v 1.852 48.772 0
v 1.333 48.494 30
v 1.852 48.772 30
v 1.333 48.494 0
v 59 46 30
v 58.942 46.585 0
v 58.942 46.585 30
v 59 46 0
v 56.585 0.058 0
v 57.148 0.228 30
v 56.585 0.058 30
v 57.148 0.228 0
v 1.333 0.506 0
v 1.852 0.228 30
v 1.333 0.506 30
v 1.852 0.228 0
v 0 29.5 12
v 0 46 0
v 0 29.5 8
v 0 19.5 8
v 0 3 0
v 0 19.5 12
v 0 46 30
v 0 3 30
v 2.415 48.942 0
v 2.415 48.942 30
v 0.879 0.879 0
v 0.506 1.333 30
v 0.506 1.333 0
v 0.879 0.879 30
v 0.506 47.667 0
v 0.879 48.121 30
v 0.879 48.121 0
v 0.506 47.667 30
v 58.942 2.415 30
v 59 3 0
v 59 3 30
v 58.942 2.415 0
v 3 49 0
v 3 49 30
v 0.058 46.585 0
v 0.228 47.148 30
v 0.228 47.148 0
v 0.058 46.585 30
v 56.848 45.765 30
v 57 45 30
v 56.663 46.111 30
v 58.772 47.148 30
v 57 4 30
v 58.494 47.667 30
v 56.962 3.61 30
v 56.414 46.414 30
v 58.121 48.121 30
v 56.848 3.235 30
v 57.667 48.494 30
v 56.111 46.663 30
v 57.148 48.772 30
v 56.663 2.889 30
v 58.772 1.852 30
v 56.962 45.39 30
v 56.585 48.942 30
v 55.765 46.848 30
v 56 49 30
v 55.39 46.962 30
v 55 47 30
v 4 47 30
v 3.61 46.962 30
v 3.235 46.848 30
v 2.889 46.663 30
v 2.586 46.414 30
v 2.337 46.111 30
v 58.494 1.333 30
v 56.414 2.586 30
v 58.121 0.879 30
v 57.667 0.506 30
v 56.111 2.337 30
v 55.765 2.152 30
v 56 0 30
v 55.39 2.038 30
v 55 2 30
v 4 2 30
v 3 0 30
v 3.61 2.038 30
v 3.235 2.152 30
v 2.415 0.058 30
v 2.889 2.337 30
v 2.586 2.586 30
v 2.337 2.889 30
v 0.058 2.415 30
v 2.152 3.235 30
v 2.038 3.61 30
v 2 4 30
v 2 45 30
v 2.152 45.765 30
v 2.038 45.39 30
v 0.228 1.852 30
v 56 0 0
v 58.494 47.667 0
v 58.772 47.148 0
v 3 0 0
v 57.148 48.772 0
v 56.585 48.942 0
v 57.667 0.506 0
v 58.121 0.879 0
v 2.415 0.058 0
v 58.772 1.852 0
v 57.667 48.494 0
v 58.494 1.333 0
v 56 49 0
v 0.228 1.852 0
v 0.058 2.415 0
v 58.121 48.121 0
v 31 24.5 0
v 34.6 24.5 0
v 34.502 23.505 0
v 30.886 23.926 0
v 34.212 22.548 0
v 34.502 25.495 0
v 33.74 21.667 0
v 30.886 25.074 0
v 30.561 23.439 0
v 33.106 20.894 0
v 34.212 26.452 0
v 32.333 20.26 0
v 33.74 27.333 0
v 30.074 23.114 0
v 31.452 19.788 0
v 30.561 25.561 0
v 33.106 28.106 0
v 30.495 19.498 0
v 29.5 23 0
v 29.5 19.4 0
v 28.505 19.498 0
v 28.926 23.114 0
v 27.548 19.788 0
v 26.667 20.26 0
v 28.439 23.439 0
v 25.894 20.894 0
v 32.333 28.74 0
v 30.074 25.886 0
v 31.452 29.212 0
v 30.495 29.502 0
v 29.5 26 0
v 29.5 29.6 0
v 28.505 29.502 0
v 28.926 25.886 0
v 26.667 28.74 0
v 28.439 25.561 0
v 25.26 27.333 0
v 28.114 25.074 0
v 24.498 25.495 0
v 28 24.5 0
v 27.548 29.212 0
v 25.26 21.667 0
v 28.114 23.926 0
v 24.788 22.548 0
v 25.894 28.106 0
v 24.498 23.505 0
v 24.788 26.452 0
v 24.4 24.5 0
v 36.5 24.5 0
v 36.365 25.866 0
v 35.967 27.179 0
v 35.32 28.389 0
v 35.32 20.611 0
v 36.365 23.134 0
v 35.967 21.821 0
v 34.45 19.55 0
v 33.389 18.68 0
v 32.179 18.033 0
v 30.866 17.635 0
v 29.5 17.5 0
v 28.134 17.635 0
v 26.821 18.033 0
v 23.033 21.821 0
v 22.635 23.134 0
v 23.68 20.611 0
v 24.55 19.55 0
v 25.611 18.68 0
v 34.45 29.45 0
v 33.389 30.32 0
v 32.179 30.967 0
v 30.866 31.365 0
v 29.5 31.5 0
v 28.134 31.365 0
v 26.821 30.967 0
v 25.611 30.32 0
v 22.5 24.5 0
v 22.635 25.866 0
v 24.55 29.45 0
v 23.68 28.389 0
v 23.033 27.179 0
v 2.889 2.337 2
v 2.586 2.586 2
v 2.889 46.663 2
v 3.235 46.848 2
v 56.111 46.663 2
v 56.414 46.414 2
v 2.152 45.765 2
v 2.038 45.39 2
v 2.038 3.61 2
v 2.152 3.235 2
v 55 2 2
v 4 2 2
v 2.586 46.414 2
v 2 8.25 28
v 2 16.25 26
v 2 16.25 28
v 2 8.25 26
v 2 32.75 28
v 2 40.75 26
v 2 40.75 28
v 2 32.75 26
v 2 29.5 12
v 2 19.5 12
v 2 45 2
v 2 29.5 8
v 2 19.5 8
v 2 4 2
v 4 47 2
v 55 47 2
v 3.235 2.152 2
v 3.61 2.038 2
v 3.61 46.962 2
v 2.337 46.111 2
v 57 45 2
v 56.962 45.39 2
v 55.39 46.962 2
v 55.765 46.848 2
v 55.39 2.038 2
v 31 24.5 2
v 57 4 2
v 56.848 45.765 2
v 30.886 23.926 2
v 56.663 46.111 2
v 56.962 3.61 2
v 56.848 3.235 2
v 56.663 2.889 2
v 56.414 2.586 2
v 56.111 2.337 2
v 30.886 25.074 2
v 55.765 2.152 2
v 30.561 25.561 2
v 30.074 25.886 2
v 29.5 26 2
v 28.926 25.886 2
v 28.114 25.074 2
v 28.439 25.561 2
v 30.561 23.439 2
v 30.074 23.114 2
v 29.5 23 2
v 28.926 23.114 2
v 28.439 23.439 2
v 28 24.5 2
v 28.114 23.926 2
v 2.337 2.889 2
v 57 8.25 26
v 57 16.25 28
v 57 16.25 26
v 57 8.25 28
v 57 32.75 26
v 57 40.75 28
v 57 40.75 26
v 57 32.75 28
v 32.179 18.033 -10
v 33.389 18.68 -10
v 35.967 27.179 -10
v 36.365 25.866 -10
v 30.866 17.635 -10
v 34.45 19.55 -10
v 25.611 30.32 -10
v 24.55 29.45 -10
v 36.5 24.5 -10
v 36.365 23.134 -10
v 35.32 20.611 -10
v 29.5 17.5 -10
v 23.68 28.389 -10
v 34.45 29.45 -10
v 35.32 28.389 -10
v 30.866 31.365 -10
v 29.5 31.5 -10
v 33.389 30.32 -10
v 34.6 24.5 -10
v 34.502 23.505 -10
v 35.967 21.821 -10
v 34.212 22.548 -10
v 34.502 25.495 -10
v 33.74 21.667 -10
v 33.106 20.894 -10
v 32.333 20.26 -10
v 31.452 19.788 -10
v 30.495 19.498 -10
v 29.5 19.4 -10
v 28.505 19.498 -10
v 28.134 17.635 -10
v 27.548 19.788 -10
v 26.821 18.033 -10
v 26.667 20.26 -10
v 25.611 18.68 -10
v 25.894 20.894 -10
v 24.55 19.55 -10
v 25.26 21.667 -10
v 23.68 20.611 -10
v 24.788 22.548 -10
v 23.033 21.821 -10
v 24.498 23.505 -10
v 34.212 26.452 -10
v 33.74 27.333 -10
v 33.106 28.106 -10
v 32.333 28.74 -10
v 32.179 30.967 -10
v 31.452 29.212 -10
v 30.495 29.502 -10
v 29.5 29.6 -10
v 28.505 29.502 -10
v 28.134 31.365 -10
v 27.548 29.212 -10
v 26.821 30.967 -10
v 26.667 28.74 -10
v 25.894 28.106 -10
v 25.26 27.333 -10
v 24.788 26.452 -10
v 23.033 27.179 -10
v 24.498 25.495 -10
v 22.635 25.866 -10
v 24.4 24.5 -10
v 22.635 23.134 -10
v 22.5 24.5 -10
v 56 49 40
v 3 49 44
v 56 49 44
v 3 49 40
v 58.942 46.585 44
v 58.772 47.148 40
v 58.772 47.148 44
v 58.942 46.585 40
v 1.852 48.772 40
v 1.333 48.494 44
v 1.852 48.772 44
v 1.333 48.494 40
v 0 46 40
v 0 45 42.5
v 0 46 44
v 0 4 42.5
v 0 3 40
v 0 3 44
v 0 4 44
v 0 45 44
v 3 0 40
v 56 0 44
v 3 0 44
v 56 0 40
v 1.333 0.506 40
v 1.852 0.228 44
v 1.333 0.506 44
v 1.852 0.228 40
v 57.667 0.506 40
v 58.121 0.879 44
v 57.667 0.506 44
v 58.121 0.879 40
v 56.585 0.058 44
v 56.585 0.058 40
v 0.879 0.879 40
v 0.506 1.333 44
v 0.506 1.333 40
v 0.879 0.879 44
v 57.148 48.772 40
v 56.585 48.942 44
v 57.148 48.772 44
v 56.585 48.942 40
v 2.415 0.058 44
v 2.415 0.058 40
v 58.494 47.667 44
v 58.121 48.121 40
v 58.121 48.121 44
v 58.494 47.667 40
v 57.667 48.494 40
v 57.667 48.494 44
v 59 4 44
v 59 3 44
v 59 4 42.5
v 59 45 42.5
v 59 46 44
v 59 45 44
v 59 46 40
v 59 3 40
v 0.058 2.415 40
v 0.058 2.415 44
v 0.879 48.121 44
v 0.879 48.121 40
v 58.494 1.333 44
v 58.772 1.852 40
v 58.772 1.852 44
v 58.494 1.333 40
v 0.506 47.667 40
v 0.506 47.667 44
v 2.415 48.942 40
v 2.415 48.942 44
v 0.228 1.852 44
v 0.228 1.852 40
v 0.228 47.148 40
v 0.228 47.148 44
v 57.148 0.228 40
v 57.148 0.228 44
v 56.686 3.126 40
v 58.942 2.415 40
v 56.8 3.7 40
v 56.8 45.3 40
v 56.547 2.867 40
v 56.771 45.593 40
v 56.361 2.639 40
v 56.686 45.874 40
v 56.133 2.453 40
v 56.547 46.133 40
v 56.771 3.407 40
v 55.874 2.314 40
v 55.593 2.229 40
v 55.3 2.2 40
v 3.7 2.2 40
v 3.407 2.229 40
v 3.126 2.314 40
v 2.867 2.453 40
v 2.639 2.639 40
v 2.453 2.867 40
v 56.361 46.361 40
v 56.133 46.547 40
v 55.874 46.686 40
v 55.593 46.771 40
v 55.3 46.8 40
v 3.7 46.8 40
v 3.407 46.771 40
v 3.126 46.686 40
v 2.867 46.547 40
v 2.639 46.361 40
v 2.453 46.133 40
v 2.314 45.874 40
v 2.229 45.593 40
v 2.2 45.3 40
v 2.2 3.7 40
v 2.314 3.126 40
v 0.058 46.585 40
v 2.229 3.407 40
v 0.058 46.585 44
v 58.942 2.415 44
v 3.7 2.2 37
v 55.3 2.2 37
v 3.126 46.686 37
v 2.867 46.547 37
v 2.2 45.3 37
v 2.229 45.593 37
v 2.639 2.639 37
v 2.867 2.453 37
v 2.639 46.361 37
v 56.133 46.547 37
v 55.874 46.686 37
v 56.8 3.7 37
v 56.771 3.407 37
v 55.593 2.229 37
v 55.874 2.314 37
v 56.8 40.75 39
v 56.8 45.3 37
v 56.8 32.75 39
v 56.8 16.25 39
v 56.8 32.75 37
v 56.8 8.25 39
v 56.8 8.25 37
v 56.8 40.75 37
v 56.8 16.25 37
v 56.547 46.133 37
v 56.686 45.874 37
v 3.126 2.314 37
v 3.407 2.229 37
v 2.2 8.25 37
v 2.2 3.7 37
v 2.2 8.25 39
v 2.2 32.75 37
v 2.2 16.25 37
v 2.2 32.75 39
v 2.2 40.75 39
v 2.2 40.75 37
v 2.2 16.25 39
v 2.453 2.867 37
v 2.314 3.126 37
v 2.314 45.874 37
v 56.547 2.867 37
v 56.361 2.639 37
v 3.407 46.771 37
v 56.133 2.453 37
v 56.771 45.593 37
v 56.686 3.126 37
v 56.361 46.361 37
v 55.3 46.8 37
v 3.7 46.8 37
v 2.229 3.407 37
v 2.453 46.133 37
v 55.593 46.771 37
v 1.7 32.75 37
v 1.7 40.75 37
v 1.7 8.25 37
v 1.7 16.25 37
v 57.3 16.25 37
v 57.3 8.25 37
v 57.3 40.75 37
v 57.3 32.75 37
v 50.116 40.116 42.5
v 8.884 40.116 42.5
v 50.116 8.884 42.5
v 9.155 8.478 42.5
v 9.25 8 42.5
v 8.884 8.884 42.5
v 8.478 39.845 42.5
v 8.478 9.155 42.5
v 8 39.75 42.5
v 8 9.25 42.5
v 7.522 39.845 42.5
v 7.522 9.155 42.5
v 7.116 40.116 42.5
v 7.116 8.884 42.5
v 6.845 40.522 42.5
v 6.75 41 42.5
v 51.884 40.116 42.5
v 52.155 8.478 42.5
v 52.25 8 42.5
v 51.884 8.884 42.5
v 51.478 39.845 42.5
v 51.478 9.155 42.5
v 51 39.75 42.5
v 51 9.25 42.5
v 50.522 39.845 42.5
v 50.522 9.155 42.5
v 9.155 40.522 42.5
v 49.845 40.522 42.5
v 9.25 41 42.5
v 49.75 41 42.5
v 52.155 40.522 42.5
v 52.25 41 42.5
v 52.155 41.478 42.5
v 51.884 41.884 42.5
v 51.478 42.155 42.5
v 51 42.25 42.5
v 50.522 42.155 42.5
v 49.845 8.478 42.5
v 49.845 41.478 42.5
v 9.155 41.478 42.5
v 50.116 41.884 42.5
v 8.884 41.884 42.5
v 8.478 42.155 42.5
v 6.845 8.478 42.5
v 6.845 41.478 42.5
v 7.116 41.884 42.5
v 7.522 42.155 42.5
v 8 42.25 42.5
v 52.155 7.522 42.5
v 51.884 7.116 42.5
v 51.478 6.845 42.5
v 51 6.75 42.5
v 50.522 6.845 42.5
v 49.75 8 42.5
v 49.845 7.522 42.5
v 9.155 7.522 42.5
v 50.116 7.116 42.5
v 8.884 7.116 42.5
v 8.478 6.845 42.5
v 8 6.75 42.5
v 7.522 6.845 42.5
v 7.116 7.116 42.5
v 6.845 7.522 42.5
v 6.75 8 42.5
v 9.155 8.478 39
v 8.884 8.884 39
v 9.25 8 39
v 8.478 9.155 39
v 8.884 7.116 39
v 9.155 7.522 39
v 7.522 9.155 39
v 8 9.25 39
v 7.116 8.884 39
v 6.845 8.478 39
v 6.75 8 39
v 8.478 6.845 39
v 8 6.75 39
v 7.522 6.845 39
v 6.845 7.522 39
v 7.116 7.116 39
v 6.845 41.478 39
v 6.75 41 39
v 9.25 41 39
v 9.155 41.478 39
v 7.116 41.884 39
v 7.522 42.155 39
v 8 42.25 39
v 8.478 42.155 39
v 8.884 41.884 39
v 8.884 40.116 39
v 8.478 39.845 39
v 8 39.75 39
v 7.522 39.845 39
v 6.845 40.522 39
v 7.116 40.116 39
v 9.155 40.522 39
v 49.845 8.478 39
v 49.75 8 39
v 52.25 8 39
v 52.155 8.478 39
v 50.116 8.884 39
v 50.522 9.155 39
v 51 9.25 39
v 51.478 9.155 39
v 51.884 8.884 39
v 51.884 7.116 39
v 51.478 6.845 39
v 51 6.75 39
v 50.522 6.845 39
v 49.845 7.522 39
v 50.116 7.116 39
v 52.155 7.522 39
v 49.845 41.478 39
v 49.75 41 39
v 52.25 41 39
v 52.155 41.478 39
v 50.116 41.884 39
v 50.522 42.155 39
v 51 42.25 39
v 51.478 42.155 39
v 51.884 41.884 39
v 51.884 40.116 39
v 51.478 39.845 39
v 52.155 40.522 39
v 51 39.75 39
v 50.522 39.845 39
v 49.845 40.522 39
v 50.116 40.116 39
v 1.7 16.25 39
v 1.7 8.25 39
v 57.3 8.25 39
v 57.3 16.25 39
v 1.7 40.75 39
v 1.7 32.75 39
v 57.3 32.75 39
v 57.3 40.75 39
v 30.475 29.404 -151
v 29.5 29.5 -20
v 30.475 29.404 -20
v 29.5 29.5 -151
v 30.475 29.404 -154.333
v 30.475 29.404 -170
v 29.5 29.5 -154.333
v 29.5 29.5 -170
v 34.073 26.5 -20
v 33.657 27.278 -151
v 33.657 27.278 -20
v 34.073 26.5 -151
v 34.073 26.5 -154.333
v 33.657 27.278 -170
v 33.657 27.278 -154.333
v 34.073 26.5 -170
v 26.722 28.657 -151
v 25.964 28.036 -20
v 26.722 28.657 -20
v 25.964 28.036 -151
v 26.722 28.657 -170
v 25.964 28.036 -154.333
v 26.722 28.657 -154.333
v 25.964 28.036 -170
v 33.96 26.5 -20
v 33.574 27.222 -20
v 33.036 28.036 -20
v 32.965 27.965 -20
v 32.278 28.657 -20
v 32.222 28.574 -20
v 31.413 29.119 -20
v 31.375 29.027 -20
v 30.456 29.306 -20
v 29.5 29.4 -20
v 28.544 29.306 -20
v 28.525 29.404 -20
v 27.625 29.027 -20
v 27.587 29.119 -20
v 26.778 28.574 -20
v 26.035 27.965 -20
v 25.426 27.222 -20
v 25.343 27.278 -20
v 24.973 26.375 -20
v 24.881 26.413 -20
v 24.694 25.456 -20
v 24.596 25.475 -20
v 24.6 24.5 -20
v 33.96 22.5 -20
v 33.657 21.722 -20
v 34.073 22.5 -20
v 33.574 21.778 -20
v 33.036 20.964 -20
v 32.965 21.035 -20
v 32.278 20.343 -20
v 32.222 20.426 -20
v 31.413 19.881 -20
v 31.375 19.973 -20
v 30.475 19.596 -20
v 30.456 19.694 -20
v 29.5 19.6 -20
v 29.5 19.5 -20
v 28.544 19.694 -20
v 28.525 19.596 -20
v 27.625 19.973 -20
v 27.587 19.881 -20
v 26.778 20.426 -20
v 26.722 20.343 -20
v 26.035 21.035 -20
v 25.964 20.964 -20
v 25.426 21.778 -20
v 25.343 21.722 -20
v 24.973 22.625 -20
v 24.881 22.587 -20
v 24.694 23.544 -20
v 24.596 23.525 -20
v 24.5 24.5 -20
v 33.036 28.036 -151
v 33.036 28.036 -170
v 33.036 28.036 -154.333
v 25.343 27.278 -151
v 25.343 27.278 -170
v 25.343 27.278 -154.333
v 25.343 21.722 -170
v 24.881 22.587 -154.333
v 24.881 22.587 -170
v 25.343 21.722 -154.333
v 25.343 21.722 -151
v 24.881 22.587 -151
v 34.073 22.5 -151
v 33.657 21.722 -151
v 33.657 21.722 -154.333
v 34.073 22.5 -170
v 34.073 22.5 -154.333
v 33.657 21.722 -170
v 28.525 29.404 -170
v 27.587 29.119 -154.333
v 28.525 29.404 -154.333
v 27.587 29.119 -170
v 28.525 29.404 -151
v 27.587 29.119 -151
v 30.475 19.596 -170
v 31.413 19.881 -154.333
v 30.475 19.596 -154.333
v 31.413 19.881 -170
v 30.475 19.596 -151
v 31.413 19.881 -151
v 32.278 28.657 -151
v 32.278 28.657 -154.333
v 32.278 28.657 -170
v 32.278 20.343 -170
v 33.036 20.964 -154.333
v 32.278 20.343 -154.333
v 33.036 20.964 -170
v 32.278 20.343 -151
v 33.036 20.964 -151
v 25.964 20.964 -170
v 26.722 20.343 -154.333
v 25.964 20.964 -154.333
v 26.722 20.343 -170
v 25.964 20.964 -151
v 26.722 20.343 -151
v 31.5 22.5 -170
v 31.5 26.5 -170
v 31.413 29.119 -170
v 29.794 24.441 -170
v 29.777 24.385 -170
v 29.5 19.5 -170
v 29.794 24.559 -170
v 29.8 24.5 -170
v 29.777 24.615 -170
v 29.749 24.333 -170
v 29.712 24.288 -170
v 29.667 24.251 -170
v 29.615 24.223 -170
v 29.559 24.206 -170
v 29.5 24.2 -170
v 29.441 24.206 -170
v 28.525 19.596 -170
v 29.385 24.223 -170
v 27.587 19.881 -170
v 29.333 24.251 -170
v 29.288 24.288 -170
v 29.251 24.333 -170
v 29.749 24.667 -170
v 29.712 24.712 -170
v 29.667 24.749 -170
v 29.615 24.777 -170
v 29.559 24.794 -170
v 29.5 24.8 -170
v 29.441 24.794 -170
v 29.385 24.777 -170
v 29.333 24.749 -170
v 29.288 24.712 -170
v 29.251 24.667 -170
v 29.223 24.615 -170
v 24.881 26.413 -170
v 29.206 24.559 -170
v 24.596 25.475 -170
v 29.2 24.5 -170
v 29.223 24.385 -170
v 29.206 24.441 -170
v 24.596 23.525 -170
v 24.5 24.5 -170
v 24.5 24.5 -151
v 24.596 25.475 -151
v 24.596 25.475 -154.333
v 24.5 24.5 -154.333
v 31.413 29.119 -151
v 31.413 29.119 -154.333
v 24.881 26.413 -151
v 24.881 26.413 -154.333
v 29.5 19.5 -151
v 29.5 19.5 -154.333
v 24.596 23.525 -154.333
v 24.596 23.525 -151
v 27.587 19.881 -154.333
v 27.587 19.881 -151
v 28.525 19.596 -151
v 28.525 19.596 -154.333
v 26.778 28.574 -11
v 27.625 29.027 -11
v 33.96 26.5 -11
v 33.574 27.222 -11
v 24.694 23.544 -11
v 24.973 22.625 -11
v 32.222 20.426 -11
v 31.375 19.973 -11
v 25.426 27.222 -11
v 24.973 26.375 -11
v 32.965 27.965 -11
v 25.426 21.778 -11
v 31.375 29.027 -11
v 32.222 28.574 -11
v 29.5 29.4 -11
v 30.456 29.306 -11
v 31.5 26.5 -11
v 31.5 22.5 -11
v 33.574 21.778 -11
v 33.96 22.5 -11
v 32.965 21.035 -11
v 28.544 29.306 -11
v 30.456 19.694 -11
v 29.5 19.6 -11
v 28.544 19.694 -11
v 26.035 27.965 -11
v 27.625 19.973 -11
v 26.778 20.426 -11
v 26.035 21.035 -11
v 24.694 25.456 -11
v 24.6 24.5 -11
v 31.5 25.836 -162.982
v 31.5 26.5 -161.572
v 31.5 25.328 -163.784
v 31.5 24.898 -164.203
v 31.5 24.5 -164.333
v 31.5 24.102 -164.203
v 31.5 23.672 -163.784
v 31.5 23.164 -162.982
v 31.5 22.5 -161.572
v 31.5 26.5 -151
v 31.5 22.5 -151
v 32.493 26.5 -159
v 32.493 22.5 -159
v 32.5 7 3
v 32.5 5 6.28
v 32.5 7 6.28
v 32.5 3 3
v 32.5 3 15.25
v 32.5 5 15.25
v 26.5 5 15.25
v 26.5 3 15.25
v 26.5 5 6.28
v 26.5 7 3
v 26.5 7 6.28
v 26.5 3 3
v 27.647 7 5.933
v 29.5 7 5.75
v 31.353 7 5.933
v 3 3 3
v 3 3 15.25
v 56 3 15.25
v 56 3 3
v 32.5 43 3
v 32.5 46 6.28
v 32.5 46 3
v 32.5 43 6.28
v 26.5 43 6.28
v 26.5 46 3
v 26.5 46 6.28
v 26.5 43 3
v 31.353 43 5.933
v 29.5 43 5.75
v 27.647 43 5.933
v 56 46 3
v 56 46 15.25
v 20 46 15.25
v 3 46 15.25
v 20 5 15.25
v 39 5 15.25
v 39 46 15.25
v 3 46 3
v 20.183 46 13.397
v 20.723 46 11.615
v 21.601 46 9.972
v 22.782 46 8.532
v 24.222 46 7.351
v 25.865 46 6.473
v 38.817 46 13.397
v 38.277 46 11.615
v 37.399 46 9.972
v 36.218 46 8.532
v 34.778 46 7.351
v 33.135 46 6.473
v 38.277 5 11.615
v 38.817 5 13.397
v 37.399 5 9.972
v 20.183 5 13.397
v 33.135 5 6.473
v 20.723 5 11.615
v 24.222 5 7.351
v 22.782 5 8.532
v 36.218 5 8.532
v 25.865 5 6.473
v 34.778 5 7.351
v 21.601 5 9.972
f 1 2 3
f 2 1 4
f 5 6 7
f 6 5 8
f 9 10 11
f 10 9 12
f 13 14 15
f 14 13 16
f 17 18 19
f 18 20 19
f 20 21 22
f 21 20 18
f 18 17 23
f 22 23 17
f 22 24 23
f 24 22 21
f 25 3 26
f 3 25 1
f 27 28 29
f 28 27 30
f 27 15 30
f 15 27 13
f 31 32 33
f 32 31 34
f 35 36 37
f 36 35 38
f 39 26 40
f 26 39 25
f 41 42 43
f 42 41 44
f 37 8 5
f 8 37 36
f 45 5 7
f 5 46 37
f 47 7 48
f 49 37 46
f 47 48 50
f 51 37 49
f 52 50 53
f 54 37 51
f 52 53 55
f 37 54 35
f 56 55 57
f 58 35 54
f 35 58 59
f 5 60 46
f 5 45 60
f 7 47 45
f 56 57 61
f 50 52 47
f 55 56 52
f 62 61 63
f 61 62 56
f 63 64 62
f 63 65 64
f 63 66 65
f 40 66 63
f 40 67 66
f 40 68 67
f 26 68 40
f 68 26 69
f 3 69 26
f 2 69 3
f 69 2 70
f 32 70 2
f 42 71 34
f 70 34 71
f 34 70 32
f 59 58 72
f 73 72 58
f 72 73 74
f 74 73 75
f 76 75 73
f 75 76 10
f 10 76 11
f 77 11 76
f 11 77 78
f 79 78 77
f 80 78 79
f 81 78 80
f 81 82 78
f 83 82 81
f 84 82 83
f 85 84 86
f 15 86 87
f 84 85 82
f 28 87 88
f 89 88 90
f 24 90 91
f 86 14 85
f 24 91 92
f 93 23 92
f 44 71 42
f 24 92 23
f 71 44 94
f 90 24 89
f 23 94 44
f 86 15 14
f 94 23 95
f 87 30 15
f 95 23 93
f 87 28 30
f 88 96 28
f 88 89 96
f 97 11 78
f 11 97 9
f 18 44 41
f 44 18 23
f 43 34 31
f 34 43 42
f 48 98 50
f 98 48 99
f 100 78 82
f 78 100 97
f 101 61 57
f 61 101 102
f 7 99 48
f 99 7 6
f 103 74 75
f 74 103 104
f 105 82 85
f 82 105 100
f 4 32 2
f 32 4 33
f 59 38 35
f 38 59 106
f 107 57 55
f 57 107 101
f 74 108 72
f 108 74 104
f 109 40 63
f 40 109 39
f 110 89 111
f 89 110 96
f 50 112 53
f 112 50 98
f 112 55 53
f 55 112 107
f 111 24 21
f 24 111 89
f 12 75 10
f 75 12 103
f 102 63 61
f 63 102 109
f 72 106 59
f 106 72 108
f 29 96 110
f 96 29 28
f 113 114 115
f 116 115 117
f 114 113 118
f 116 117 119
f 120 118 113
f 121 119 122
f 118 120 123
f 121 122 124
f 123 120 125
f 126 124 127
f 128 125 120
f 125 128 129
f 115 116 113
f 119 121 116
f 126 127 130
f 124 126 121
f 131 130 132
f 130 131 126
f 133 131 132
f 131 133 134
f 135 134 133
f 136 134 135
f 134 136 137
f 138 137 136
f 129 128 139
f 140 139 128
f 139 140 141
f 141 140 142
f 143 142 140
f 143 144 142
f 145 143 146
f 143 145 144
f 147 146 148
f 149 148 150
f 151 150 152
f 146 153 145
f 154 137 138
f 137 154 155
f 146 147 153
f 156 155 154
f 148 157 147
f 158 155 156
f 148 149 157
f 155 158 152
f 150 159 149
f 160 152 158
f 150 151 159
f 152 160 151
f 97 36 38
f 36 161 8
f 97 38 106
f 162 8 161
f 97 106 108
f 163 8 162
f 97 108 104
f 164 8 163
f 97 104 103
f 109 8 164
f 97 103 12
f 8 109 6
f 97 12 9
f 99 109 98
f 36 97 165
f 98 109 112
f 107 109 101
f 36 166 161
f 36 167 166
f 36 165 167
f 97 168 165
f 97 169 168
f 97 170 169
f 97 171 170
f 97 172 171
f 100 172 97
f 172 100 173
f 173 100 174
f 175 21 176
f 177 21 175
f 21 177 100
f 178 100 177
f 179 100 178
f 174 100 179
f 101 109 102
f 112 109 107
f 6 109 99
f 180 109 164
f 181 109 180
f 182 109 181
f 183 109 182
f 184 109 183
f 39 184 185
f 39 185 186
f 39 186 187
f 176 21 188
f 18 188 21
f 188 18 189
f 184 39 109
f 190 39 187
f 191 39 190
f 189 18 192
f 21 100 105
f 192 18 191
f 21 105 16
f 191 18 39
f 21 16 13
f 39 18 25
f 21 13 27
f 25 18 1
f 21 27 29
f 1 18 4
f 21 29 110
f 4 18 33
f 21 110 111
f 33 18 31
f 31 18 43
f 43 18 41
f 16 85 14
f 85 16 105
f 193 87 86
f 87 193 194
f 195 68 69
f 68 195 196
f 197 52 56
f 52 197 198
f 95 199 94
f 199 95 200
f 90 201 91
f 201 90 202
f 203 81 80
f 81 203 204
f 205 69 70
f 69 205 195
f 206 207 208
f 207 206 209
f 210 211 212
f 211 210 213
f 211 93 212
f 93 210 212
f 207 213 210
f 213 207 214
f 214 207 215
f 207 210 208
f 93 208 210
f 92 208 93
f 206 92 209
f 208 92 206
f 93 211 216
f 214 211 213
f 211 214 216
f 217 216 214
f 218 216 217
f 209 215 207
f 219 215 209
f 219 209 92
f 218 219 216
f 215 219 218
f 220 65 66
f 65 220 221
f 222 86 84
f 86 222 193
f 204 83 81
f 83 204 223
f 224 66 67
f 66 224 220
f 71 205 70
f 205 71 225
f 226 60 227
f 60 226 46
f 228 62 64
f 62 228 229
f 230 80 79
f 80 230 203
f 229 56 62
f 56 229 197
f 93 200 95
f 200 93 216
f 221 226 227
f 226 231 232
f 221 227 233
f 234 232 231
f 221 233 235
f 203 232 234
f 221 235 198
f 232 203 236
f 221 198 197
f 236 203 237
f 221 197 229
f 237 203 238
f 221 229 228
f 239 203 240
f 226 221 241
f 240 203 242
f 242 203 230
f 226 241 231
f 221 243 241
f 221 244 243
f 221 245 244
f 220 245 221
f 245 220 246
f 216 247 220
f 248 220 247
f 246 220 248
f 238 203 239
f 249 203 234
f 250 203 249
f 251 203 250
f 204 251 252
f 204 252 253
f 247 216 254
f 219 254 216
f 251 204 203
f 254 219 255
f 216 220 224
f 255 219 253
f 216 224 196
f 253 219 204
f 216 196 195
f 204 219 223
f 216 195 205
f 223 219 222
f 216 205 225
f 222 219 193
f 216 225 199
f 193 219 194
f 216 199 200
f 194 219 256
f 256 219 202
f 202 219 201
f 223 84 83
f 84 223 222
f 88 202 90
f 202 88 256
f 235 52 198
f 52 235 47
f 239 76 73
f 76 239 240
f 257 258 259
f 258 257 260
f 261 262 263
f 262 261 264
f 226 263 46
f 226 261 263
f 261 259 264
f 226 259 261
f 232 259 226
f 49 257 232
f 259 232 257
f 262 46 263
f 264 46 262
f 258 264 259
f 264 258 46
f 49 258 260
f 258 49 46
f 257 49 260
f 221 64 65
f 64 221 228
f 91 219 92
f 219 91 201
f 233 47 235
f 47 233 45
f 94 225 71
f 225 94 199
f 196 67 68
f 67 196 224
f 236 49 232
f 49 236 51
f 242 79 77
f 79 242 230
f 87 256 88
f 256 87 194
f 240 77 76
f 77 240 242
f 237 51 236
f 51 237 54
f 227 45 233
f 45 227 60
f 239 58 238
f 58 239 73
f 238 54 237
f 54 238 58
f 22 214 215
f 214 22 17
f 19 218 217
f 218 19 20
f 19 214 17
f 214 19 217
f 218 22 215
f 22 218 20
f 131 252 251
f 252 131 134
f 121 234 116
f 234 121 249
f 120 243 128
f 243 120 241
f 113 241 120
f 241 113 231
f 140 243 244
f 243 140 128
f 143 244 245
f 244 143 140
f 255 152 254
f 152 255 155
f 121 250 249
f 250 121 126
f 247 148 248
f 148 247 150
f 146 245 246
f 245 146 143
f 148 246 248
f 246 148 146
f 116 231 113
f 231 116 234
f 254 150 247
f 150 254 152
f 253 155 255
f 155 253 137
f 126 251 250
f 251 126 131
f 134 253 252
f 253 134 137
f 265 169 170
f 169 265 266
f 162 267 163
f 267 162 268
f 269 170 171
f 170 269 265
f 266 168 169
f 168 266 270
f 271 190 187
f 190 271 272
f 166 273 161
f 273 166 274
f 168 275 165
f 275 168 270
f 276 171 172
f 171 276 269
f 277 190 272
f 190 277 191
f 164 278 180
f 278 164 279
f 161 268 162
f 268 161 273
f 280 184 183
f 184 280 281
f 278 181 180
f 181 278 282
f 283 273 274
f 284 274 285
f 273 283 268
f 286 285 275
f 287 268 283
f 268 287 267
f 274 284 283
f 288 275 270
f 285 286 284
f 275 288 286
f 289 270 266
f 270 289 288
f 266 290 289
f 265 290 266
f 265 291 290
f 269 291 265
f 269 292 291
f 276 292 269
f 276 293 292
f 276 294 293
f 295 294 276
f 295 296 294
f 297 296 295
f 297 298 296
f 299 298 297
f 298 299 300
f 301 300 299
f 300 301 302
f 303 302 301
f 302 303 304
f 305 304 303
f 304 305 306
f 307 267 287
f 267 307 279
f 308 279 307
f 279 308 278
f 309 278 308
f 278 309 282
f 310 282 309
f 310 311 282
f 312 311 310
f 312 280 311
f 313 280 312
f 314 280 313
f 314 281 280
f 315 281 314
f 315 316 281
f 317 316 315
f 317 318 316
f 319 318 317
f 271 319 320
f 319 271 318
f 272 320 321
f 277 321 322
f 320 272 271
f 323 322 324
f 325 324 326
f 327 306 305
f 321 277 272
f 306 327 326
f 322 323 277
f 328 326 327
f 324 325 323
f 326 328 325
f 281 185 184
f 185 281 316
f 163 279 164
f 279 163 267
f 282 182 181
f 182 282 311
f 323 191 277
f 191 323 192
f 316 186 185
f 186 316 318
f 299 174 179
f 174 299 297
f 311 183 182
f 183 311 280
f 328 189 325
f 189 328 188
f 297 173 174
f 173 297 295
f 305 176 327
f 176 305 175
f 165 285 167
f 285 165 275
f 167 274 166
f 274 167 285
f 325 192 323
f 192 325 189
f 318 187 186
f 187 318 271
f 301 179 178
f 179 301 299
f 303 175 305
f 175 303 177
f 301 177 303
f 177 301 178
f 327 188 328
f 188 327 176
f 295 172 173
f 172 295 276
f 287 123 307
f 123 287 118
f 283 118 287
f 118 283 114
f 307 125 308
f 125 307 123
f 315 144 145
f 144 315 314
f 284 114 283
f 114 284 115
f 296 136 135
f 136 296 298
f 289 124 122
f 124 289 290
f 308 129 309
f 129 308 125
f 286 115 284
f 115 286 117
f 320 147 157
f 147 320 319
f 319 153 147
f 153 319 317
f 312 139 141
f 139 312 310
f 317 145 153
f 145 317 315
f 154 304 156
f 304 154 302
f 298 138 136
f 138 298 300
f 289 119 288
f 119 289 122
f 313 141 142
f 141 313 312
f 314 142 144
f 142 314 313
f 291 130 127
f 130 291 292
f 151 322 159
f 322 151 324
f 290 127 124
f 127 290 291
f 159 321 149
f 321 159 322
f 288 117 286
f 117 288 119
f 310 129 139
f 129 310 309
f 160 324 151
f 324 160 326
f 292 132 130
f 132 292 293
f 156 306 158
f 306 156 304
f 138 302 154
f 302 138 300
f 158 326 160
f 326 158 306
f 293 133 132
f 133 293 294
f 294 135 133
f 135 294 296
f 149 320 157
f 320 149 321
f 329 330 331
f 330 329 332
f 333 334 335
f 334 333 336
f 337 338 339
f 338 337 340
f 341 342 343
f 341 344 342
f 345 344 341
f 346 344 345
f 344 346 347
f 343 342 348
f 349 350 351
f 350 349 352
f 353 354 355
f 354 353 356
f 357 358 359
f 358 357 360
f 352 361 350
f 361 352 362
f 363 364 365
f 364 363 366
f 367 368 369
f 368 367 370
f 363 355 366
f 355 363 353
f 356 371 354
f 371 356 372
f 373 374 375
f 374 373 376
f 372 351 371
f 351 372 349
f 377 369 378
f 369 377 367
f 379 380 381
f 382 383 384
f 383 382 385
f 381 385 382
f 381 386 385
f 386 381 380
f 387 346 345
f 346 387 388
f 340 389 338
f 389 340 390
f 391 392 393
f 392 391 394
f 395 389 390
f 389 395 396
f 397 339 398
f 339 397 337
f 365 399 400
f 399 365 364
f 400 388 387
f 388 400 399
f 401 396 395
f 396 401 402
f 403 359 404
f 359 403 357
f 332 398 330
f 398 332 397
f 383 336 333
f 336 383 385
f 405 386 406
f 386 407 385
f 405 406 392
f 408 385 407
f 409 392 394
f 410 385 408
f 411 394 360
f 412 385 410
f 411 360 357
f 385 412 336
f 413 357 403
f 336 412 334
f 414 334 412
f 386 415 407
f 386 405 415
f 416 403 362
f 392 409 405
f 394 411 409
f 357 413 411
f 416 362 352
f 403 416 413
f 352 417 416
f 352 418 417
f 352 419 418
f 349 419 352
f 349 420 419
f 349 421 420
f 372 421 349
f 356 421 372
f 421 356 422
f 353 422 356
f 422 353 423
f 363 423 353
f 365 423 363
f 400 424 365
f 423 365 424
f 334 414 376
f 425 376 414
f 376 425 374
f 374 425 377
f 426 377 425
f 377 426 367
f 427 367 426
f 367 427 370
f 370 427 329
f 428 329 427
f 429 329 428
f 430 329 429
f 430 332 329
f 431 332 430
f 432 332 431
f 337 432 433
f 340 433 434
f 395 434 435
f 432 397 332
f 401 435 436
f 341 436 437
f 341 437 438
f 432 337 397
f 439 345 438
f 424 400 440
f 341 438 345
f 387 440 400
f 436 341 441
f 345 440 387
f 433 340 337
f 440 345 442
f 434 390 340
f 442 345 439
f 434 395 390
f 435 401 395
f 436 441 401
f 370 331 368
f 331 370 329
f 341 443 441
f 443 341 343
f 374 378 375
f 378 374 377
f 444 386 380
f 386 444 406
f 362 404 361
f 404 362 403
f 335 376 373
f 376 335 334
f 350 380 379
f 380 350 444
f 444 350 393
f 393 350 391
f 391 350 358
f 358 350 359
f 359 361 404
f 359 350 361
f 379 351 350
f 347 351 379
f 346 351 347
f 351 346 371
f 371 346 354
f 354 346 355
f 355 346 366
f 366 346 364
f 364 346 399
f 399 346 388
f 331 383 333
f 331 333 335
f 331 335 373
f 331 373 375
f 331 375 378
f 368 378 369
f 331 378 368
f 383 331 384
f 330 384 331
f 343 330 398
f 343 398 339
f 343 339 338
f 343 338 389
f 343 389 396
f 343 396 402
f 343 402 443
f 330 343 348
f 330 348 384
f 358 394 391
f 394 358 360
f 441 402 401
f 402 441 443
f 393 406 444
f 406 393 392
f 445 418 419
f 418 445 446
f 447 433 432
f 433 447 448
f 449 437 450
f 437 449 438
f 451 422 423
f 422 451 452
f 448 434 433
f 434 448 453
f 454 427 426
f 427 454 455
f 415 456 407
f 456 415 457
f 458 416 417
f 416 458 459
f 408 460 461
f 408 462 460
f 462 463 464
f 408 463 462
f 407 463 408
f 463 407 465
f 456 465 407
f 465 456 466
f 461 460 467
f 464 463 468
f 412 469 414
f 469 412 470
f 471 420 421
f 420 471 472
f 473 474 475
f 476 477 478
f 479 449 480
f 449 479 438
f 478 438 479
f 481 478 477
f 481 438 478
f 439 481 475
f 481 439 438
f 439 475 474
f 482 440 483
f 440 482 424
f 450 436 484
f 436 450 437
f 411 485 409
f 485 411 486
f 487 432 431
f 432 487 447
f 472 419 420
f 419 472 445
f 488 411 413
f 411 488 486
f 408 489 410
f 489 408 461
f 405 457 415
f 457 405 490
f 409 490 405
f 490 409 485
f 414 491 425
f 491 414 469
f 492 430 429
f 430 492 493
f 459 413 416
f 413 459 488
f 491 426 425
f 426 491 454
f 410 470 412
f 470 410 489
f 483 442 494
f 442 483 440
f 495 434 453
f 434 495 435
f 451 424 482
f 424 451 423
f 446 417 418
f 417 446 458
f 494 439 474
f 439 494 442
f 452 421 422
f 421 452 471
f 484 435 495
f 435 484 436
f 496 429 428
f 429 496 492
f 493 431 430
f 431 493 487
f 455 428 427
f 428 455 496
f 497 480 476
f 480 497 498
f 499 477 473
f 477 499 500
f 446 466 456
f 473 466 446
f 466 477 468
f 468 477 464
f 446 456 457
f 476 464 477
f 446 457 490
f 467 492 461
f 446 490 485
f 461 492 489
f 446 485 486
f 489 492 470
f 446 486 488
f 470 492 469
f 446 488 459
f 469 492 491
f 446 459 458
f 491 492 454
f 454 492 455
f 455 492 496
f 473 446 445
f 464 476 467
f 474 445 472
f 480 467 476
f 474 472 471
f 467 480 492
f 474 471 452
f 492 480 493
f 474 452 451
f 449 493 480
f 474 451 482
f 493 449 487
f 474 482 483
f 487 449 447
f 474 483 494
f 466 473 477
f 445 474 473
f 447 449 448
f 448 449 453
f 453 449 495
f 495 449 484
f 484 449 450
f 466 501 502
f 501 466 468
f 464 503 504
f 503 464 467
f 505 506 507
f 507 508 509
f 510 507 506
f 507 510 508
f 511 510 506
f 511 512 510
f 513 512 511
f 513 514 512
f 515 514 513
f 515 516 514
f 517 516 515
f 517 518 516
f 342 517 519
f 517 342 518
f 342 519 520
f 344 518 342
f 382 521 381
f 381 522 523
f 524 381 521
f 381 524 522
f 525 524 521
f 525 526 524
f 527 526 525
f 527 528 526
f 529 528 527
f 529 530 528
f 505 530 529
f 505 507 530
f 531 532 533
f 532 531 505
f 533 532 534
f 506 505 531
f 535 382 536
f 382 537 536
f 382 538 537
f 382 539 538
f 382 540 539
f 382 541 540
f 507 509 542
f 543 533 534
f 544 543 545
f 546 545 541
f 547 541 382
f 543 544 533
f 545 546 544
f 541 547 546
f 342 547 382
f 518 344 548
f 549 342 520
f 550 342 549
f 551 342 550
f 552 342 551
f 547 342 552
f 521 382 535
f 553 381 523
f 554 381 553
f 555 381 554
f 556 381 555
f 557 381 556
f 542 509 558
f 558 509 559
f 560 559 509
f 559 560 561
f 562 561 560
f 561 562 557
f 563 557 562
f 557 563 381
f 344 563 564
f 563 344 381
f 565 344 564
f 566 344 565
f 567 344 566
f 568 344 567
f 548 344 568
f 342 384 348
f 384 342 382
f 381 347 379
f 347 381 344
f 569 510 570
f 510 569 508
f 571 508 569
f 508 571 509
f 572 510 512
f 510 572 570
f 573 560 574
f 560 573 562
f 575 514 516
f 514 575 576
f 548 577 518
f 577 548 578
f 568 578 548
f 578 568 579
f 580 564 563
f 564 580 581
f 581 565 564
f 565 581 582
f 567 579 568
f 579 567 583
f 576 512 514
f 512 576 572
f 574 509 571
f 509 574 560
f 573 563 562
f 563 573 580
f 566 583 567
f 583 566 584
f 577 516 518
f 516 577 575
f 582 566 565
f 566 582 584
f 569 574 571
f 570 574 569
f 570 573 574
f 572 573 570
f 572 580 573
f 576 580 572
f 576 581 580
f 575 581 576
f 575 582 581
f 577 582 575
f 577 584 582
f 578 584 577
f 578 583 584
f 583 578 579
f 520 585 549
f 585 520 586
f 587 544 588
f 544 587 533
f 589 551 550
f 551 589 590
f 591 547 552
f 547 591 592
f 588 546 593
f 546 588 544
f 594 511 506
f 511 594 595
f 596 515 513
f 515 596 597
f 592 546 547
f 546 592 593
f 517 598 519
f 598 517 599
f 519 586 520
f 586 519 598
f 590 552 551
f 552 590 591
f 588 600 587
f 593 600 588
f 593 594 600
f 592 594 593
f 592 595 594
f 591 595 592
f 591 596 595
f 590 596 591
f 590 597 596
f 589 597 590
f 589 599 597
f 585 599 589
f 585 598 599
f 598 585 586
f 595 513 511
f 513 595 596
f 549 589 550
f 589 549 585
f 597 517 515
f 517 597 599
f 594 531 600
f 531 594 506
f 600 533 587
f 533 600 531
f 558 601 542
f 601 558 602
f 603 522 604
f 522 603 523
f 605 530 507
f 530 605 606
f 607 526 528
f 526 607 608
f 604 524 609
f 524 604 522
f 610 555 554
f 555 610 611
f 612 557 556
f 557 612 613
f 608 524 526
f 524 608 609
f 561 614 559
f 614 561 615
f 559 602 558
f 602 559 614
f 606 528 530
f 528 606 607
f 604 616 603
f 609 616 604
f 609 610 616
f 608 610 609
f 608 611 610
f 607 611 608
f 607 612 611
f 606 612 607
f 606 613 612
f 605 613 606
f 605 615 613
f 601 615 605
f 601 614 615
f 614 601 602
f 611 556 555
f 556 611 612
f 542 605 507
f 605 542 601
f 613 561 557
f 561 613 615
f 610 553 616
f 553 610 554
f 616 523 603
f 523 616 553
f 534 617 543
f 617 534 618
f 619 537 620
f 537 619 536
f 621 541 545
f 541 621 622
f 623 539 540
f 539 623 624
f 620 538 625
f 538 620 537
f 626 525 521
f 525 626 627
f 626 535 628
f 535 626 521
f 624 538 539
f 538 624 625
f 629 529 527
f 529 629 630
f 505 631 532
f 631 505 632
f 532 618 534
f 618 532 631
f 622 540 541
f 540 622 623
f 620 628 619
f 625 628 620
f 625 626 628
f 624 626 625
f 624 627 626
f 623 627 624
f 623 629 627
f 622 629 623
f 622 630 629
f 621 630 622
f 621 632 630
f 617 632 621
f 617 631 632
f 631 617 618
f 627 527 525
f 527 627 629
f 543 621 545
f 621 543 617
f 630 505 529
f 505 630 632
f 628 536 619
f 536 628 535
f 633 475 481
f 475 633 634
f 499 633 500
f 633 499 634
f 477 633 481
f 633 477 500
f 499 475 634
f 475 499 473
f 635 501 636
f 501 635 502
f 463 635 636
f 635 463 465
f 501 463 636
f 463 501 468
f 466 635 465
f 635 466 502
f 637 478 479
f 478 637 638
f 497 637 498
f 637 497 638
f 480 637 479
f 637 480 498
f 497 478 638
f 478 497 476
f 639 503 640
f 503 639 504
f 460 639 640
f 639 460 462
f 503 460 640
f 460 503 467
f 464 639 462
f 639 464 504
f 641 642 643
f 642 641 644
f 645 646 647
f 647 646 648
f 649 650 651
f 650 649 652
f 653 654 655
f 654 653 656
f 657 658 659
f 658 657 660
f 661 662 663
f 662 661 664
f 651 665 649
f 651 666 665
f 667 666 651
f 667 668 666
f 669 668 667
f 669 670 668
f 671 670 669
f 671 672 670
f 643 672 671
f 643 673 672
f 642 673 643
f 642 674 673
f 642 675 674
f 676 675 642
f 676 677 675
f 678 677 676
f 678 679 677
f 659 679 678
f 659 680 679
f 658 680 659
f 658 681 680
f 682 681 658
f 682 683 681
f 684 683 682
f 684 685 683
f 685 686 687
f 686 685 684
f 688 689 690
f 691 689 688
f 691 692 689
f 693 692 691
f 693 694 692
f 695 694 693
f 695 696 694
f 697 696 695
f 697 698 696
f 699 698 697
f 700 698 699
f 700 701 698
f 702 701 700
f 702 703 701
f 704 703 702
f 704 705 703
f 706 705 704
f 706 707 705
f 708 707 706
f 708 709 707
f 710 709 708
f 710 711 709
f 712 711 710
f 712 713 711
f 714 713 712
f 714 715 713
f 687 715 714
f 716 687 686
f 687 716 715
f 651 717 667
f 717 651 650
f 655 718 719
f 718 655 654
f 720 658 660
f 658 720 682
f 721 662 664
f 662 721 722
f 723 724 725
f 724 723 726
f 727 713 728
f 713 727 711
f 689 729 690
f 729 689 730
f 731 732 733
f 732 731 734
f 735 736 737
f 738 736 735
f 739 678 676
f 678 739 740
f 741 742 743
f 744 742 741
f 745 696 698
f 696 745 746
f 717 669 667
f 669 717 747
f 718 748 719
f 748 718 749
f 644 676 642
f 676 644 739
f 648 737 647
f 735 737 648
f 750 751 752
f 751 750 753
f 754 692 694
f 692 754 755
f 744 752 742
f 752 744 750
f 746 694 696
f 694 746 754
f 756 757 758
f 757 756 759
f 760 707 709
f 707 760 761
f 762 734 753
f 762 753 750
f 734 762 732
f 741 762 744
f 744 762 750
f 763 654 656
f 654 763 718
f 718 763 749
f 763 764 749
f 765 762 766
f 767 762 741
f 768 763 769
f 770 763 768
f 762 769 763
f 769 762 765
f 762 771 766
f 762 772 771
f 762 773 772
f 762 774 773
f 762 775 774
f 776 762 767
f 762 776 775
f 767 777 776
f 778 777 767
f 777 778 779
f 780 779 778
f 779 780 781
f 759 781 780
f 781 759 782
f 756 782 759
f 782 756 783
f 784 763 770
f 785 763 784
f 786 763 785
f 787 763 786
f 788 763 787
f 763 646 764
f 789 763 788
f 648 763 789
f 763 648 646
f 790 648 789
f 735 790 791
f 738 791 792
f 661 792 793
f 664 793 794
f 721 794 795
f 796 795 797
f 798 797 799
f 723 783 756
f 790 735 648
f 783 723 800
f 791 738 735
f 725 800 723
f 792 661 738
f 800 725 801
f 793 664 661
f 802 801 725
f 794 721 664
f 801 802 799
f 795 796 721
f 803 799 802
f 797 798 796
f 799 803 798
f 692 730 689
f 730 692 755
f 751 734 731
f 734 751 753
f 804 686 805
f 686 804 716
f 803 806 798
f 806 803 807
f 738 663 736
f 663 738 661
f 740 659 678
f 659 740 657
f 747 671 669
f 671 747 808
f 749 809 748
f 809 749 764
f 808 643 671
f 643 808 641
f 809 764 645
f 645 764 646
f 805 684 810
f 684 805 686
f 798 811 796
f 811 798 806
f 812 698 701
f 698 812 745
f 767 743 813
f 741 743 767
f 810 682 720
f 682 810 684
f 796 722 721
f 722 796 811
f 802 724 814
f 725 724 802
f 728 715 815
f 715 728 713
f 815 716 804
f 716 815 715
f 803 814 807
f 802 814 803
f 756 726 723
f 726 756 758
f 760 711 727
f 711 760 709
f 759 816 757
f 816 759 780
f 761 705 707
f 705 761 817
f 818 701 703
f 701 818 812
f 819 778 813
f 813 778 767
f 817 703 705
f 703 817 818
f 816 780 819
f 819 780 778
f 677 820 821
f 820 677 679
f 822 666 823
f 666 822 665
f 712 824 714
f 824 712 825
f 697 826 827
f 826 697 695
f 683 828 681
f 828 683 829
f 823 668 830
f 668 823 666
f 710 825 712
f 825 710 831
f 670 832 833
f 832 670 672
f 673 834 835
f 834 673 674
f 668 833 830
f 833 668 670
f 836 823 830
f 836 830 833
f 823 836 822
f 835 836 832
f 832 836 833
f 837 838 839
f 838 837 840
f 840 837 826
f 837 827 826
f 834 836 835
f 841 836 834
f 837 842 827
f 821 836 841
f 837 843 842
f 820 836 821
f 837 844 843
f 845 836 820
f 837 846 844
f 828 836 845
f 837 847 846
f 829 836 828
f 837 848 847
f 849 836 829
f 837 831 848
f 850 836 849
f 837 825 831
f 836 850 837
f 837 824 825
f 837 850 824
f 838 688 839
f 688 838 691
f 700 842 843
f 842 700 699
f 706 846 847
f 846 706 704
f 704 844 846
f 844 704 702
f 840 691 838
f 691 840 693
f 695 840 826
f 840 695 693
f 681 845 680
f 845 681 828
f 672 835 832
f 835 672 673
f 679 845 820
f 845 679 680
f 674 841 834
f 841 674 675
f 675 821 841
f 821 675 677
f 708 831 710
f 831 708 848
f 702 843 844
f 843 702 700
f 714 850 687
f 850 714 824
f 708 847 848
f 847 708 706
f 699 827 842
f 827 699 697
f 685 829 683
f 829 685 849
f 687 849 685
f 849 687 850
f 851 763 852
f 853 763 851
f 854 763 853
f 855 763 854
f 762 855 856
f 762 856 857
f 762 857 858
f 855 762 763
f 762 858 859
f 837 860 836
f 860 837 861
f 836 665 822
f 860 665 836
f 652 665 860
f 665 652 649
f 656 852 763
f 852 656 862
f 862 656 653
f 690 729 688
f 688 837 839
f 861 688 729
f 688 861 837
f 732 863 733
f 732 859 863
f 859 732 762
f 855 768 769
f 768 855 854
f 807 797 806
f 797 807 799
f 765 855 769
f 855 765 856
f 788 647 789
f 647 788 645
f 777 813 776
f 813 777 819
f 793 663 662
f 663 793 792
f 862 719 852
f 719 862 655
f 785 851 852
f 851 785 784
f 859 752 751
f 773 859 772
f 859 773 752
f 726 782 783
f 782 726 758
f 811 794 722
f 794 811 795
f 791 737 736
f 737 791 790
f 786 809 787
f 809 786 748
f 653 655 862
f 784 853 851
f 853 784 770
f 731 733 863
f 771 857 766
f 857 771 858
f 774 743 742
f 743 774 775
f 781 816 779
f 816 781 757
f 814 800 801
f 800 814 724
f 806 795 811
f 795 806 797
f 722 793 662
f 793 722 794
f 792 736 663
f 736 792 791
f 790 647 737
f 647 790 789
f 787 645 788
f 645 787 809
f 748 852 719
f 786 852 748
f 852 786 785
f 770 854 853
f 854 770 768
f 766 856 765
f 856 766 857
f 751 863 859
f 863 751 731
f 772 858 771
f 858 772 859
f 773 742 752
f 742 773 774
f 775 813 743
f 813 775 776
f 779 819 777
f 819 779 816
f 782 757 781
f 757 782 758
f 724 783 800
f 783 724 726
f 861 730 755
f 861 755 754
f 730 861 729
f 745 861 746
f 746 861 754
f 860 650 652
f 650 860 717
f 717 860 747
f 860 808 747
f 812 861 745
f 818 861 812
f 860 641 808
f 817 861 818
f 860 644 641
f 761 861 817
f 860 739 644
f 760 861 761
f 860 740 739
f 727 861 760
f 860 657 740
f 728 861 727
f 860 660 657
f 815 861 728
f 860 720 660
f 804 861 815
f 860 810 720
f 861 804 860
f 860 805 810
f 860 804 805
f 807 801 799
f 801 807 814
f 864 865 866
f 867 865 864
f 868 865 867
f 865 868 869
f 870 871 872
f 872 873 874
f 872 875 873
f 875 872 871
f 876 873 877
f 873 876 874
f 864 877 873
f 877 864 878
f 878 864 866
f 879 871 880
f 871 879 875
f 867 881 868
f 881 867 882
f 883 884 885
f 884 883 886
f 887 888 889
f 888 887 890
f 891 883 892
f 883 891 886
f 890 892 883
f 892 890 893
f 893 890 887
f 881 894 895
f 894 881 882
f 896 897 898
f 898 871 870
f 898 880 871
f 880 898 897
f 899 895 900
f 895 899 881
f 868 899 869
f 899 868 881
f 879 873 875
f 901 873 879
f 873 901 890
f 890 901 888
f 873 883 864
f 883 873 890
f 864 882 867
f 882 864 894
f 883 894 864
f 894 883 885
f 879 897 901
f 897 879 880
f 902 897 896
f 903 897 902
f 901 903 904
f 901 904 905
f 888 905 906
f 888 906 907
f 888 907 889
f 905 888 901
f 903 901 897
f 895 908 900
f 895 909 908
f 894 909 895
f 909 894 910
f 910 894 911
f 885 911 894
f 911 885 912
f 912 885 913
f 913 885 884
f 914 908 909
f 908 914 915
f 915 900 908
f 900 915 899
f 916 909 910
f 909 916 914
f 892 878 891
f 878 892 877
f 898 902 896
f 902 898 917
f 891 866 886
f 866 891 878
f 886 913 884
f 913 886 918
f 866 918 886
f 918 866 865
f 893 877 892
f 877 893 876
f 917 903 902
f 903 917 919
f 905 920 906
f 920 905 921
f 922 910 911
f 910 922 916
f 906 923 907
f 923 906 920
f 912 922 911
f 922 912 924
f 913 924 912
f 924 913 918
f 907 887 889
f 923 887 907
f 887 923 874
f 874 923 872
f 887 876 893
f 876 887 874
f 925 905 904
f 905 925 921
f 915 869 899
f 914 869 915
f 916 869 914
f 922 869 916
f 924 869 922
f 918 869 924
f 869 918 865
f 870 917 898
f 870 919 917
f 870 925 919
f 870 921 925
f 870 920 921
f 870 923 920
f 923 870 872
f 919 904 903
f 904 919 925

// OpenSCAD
// HealthyPlant Sensor Enclosure — Parametric OpenSCAD Design
// Print with PETG, 0.2mm layer height, 20% gyroid infill
// Generates: main body, lid, stake, battery tray
//
// Usage:
//   openscad -o main_body.stl -D 'part="body"' healthyplant-sensor.scad
//   openscad -o lid.stl -D 'part="lid"' healthyplant-sensor.scad
//   openscad -o stake.stl -D 'part="stake"' healthyplant-sensor.scad
//   openscad -o battery_tray.stl -D 'part="battery"' healthyplant-sensor.scad
//   openscad -o assembly.stl -D 'part="assembly"' healthyplant-sensor.scad

// ── Parameters ──────────────────────────────────

part = "assembly";  // "body", "lid", "stake", "battery", "assembly"

// Electronics box (internal dimensions)
box_w = 55;   // width (X)
box_d = 45;   // depth (Y)
box_h = 28;   // height (Z)
wall  = 2.0;  // wall thickness
tol   = 0.2;  // print tolerance for snap-fit

// Stake
stake_len   = 150;  // total length
stake_dia   = 10;   // diameter
probe_chan   = 4;    // channel diameter for soil probe wire

// Lid
lid_h       = 4;    // lid height
vent_slots  = 6;    // number of ventilation slots
vent_w      = 18;   // slot width
vent_h      = 1.5;  // slot height

// USB-C port
usbc_w = 10;
usbc_h = 4;
usbc_z = 6;  // height from bottom of box interior

// Snap-fit clips
clip_w = 8;
clip_h = 2;
clip_depth = 1.2;

// 18650 battery
batt_dia = 18.5;
batt_len = 65.5;

// ── Modules ─────────────────────────────────────

module rounded_box(w, d, h, r=3) {
    hull() {
        for (x = [r, w-r], y = [r, d-r])
            translate([x, y, 0])
                cylinder(h=h, r=r, $fn=32);
    }
}

module main_body() {
    ow = box_w + wall*2;
    od = box_d + wall*2;
    oh = box_h + wall;

    difference() {
        // Outer shell
        rounded_box(ow, od, oh);

        // Inner cavity
        translate([wall, wall, wall])
            rounded_box(box_w, box_d, box_h + 1, r=2);

        // USB-C port (left side)
        translate([-1, (od - usbc_w)/2, wall + usbc_z])
            cube([wall + 2, usbc_w, usbc_h]);

        // Drain hole (bottom center)
        translate([ow/2, od/2, -1])
            cylinder(d=3, h=wall+2, $fn=16);
    }

    // Snap-fit clip recesses (inside walls)
    for (y_pos = [od*0.25, od*0.75]) {
        // Left wall clip
        translate([wall - clip_depth, y_pos - clip_w/2, oh - clip_h - 2])
            cube([clip_depth, clip_w, clip_h]);
        // Right wall clip
        translate([ow - wall, y_pos - clip_w/2, oh - clip_h - 2])
            cube([clip_depth, clip_w, clip_h]);
    }

    // Stake mount (bottom center, tube going down)
    translate([ow/2, od/2, -stake_dia])
        difference() {
            cylinder(d=stake_dia + wall*2, h=stake_dia, $fn=32);
            translate([0, 0, -1])
                cylinder(d=stake_dia + tol, h=stake_dia + 2, $fn=32);
        }
}

module lid() {
    ow = box_w + wall*2;
    od = box_d + wall*2;

    difference() {
        union() {
            // Lid plate
            rounded_box(ow, od, lid_h);

            // Inner lip for snug fit
            translate([wall + tol, wall + tol, -3])
                rounded_box(box_w - tol*2, box_d - tol*2, 3, r=1.5);
        }

        // Ventilation slots (angled downward for rain protection)
        for (i = [0 : vent_slots - 1]) {
            x_pos = ow * (i + 1) / (vent_slots + 1);
            translate([x_pos - vent_w/2, wall + 2, lid_h - vent_h])
                cube([vent_w, box_d - 4, vent_h + 1]);
        }

        // Solar panel mount holes (4 corners)
        for (x = [8, ow-8], y = [8, od-8])
            translate([x, y, -1])
                cylinder(d=2.5, h=lid_h + 2, $fn=16);
    }

    // Snap-fit clips on lid inner lip
    for (y_pos = [od*0.25, od*0.75]) {
        // Left clip
        translate([wall + tol - 0.5, y_pos - clip_w/2, -3])
            cube([clip_depth + 0.5, clip_w, clip_h]);
        // Right clip
        translate([ow - wall - tol - clip_depth, y_pos - clip_w/2, -3])
            cube([clip_depth + 0.5, clip_w, clip_h]);
    }
}

module stake() {
    difference() {
        union() {
            // Main stake cylinder
            cylinder(d=stake_dia, h=stake_len, $fn=32);

            // Top plug (inserts into body mount)
            translate([0, 0, stake_len])
                cylinder(d=stake_dia - tol, h=stake_dia - 1, $fn=32);
        }

        // Probe wire channel (runs full length)
        translate([stake_dia/2 - probe_chan/2 - 1, -probe_chan/2, -1])
            cube([probe_chan, probe_chan, stake_len + stake_dia + 2]);

        // Pointed tip
        translate([0, 0, -1])
            cylinder(d1=0, d2=stake_dia + 2, h=20, $fn=32);
    }
}

module battery_tray() {
    // Tray that holds an 18650 battery, slides into the main body
    tray_w = box_w - 2;
    tray_d = batt_len + 4;
    tray_h = batt_dia/2 + 3;

    difference() {
        cube([tray_w, min(tray_d, box_d - 2), tray_h]);

        // Battery cradle (semi-circular channel)
        translate([tray_w/2, 2, tray_h])
            rotate([-90, 0, 0])
                cylinder(d=batt_dia + 0.5, h=batt_len + 1, $fn=32);

        // Wire slots at each end
        for (y = [0, min(tray_d, box_d - 2) - 3])
            translate([tray_w/2 - 3, y, -1])
                cube([6, 4, tray_h + 2]);
    }
}

// ── Part Selection ──────────────────────────────

if (part == "body") {
    main_body();
} else if (part == "lid") {
    lid();
} else if (part == "stake") {
    stake();
} else if (part == "battery") {
    battery_tray();
} else if (part == "assembly") {
    // Exploded assembly view
    color("#2a2a2a") main_body();

    ow = box_w + wall*2;
    od = box_d + wall*2;
    oh = box_h + wall;

    color("#00C853", 0.7)
        translate([0, 0, oh + 10])
            lid();

    color("#8B4513")
        translate([ow/2, od/2, -stake_len - stake_dia - 10])
            stake();

    color("#444")
        translate([wall + 1, wall + 1, wall + 1])
            battery_tray();
}
